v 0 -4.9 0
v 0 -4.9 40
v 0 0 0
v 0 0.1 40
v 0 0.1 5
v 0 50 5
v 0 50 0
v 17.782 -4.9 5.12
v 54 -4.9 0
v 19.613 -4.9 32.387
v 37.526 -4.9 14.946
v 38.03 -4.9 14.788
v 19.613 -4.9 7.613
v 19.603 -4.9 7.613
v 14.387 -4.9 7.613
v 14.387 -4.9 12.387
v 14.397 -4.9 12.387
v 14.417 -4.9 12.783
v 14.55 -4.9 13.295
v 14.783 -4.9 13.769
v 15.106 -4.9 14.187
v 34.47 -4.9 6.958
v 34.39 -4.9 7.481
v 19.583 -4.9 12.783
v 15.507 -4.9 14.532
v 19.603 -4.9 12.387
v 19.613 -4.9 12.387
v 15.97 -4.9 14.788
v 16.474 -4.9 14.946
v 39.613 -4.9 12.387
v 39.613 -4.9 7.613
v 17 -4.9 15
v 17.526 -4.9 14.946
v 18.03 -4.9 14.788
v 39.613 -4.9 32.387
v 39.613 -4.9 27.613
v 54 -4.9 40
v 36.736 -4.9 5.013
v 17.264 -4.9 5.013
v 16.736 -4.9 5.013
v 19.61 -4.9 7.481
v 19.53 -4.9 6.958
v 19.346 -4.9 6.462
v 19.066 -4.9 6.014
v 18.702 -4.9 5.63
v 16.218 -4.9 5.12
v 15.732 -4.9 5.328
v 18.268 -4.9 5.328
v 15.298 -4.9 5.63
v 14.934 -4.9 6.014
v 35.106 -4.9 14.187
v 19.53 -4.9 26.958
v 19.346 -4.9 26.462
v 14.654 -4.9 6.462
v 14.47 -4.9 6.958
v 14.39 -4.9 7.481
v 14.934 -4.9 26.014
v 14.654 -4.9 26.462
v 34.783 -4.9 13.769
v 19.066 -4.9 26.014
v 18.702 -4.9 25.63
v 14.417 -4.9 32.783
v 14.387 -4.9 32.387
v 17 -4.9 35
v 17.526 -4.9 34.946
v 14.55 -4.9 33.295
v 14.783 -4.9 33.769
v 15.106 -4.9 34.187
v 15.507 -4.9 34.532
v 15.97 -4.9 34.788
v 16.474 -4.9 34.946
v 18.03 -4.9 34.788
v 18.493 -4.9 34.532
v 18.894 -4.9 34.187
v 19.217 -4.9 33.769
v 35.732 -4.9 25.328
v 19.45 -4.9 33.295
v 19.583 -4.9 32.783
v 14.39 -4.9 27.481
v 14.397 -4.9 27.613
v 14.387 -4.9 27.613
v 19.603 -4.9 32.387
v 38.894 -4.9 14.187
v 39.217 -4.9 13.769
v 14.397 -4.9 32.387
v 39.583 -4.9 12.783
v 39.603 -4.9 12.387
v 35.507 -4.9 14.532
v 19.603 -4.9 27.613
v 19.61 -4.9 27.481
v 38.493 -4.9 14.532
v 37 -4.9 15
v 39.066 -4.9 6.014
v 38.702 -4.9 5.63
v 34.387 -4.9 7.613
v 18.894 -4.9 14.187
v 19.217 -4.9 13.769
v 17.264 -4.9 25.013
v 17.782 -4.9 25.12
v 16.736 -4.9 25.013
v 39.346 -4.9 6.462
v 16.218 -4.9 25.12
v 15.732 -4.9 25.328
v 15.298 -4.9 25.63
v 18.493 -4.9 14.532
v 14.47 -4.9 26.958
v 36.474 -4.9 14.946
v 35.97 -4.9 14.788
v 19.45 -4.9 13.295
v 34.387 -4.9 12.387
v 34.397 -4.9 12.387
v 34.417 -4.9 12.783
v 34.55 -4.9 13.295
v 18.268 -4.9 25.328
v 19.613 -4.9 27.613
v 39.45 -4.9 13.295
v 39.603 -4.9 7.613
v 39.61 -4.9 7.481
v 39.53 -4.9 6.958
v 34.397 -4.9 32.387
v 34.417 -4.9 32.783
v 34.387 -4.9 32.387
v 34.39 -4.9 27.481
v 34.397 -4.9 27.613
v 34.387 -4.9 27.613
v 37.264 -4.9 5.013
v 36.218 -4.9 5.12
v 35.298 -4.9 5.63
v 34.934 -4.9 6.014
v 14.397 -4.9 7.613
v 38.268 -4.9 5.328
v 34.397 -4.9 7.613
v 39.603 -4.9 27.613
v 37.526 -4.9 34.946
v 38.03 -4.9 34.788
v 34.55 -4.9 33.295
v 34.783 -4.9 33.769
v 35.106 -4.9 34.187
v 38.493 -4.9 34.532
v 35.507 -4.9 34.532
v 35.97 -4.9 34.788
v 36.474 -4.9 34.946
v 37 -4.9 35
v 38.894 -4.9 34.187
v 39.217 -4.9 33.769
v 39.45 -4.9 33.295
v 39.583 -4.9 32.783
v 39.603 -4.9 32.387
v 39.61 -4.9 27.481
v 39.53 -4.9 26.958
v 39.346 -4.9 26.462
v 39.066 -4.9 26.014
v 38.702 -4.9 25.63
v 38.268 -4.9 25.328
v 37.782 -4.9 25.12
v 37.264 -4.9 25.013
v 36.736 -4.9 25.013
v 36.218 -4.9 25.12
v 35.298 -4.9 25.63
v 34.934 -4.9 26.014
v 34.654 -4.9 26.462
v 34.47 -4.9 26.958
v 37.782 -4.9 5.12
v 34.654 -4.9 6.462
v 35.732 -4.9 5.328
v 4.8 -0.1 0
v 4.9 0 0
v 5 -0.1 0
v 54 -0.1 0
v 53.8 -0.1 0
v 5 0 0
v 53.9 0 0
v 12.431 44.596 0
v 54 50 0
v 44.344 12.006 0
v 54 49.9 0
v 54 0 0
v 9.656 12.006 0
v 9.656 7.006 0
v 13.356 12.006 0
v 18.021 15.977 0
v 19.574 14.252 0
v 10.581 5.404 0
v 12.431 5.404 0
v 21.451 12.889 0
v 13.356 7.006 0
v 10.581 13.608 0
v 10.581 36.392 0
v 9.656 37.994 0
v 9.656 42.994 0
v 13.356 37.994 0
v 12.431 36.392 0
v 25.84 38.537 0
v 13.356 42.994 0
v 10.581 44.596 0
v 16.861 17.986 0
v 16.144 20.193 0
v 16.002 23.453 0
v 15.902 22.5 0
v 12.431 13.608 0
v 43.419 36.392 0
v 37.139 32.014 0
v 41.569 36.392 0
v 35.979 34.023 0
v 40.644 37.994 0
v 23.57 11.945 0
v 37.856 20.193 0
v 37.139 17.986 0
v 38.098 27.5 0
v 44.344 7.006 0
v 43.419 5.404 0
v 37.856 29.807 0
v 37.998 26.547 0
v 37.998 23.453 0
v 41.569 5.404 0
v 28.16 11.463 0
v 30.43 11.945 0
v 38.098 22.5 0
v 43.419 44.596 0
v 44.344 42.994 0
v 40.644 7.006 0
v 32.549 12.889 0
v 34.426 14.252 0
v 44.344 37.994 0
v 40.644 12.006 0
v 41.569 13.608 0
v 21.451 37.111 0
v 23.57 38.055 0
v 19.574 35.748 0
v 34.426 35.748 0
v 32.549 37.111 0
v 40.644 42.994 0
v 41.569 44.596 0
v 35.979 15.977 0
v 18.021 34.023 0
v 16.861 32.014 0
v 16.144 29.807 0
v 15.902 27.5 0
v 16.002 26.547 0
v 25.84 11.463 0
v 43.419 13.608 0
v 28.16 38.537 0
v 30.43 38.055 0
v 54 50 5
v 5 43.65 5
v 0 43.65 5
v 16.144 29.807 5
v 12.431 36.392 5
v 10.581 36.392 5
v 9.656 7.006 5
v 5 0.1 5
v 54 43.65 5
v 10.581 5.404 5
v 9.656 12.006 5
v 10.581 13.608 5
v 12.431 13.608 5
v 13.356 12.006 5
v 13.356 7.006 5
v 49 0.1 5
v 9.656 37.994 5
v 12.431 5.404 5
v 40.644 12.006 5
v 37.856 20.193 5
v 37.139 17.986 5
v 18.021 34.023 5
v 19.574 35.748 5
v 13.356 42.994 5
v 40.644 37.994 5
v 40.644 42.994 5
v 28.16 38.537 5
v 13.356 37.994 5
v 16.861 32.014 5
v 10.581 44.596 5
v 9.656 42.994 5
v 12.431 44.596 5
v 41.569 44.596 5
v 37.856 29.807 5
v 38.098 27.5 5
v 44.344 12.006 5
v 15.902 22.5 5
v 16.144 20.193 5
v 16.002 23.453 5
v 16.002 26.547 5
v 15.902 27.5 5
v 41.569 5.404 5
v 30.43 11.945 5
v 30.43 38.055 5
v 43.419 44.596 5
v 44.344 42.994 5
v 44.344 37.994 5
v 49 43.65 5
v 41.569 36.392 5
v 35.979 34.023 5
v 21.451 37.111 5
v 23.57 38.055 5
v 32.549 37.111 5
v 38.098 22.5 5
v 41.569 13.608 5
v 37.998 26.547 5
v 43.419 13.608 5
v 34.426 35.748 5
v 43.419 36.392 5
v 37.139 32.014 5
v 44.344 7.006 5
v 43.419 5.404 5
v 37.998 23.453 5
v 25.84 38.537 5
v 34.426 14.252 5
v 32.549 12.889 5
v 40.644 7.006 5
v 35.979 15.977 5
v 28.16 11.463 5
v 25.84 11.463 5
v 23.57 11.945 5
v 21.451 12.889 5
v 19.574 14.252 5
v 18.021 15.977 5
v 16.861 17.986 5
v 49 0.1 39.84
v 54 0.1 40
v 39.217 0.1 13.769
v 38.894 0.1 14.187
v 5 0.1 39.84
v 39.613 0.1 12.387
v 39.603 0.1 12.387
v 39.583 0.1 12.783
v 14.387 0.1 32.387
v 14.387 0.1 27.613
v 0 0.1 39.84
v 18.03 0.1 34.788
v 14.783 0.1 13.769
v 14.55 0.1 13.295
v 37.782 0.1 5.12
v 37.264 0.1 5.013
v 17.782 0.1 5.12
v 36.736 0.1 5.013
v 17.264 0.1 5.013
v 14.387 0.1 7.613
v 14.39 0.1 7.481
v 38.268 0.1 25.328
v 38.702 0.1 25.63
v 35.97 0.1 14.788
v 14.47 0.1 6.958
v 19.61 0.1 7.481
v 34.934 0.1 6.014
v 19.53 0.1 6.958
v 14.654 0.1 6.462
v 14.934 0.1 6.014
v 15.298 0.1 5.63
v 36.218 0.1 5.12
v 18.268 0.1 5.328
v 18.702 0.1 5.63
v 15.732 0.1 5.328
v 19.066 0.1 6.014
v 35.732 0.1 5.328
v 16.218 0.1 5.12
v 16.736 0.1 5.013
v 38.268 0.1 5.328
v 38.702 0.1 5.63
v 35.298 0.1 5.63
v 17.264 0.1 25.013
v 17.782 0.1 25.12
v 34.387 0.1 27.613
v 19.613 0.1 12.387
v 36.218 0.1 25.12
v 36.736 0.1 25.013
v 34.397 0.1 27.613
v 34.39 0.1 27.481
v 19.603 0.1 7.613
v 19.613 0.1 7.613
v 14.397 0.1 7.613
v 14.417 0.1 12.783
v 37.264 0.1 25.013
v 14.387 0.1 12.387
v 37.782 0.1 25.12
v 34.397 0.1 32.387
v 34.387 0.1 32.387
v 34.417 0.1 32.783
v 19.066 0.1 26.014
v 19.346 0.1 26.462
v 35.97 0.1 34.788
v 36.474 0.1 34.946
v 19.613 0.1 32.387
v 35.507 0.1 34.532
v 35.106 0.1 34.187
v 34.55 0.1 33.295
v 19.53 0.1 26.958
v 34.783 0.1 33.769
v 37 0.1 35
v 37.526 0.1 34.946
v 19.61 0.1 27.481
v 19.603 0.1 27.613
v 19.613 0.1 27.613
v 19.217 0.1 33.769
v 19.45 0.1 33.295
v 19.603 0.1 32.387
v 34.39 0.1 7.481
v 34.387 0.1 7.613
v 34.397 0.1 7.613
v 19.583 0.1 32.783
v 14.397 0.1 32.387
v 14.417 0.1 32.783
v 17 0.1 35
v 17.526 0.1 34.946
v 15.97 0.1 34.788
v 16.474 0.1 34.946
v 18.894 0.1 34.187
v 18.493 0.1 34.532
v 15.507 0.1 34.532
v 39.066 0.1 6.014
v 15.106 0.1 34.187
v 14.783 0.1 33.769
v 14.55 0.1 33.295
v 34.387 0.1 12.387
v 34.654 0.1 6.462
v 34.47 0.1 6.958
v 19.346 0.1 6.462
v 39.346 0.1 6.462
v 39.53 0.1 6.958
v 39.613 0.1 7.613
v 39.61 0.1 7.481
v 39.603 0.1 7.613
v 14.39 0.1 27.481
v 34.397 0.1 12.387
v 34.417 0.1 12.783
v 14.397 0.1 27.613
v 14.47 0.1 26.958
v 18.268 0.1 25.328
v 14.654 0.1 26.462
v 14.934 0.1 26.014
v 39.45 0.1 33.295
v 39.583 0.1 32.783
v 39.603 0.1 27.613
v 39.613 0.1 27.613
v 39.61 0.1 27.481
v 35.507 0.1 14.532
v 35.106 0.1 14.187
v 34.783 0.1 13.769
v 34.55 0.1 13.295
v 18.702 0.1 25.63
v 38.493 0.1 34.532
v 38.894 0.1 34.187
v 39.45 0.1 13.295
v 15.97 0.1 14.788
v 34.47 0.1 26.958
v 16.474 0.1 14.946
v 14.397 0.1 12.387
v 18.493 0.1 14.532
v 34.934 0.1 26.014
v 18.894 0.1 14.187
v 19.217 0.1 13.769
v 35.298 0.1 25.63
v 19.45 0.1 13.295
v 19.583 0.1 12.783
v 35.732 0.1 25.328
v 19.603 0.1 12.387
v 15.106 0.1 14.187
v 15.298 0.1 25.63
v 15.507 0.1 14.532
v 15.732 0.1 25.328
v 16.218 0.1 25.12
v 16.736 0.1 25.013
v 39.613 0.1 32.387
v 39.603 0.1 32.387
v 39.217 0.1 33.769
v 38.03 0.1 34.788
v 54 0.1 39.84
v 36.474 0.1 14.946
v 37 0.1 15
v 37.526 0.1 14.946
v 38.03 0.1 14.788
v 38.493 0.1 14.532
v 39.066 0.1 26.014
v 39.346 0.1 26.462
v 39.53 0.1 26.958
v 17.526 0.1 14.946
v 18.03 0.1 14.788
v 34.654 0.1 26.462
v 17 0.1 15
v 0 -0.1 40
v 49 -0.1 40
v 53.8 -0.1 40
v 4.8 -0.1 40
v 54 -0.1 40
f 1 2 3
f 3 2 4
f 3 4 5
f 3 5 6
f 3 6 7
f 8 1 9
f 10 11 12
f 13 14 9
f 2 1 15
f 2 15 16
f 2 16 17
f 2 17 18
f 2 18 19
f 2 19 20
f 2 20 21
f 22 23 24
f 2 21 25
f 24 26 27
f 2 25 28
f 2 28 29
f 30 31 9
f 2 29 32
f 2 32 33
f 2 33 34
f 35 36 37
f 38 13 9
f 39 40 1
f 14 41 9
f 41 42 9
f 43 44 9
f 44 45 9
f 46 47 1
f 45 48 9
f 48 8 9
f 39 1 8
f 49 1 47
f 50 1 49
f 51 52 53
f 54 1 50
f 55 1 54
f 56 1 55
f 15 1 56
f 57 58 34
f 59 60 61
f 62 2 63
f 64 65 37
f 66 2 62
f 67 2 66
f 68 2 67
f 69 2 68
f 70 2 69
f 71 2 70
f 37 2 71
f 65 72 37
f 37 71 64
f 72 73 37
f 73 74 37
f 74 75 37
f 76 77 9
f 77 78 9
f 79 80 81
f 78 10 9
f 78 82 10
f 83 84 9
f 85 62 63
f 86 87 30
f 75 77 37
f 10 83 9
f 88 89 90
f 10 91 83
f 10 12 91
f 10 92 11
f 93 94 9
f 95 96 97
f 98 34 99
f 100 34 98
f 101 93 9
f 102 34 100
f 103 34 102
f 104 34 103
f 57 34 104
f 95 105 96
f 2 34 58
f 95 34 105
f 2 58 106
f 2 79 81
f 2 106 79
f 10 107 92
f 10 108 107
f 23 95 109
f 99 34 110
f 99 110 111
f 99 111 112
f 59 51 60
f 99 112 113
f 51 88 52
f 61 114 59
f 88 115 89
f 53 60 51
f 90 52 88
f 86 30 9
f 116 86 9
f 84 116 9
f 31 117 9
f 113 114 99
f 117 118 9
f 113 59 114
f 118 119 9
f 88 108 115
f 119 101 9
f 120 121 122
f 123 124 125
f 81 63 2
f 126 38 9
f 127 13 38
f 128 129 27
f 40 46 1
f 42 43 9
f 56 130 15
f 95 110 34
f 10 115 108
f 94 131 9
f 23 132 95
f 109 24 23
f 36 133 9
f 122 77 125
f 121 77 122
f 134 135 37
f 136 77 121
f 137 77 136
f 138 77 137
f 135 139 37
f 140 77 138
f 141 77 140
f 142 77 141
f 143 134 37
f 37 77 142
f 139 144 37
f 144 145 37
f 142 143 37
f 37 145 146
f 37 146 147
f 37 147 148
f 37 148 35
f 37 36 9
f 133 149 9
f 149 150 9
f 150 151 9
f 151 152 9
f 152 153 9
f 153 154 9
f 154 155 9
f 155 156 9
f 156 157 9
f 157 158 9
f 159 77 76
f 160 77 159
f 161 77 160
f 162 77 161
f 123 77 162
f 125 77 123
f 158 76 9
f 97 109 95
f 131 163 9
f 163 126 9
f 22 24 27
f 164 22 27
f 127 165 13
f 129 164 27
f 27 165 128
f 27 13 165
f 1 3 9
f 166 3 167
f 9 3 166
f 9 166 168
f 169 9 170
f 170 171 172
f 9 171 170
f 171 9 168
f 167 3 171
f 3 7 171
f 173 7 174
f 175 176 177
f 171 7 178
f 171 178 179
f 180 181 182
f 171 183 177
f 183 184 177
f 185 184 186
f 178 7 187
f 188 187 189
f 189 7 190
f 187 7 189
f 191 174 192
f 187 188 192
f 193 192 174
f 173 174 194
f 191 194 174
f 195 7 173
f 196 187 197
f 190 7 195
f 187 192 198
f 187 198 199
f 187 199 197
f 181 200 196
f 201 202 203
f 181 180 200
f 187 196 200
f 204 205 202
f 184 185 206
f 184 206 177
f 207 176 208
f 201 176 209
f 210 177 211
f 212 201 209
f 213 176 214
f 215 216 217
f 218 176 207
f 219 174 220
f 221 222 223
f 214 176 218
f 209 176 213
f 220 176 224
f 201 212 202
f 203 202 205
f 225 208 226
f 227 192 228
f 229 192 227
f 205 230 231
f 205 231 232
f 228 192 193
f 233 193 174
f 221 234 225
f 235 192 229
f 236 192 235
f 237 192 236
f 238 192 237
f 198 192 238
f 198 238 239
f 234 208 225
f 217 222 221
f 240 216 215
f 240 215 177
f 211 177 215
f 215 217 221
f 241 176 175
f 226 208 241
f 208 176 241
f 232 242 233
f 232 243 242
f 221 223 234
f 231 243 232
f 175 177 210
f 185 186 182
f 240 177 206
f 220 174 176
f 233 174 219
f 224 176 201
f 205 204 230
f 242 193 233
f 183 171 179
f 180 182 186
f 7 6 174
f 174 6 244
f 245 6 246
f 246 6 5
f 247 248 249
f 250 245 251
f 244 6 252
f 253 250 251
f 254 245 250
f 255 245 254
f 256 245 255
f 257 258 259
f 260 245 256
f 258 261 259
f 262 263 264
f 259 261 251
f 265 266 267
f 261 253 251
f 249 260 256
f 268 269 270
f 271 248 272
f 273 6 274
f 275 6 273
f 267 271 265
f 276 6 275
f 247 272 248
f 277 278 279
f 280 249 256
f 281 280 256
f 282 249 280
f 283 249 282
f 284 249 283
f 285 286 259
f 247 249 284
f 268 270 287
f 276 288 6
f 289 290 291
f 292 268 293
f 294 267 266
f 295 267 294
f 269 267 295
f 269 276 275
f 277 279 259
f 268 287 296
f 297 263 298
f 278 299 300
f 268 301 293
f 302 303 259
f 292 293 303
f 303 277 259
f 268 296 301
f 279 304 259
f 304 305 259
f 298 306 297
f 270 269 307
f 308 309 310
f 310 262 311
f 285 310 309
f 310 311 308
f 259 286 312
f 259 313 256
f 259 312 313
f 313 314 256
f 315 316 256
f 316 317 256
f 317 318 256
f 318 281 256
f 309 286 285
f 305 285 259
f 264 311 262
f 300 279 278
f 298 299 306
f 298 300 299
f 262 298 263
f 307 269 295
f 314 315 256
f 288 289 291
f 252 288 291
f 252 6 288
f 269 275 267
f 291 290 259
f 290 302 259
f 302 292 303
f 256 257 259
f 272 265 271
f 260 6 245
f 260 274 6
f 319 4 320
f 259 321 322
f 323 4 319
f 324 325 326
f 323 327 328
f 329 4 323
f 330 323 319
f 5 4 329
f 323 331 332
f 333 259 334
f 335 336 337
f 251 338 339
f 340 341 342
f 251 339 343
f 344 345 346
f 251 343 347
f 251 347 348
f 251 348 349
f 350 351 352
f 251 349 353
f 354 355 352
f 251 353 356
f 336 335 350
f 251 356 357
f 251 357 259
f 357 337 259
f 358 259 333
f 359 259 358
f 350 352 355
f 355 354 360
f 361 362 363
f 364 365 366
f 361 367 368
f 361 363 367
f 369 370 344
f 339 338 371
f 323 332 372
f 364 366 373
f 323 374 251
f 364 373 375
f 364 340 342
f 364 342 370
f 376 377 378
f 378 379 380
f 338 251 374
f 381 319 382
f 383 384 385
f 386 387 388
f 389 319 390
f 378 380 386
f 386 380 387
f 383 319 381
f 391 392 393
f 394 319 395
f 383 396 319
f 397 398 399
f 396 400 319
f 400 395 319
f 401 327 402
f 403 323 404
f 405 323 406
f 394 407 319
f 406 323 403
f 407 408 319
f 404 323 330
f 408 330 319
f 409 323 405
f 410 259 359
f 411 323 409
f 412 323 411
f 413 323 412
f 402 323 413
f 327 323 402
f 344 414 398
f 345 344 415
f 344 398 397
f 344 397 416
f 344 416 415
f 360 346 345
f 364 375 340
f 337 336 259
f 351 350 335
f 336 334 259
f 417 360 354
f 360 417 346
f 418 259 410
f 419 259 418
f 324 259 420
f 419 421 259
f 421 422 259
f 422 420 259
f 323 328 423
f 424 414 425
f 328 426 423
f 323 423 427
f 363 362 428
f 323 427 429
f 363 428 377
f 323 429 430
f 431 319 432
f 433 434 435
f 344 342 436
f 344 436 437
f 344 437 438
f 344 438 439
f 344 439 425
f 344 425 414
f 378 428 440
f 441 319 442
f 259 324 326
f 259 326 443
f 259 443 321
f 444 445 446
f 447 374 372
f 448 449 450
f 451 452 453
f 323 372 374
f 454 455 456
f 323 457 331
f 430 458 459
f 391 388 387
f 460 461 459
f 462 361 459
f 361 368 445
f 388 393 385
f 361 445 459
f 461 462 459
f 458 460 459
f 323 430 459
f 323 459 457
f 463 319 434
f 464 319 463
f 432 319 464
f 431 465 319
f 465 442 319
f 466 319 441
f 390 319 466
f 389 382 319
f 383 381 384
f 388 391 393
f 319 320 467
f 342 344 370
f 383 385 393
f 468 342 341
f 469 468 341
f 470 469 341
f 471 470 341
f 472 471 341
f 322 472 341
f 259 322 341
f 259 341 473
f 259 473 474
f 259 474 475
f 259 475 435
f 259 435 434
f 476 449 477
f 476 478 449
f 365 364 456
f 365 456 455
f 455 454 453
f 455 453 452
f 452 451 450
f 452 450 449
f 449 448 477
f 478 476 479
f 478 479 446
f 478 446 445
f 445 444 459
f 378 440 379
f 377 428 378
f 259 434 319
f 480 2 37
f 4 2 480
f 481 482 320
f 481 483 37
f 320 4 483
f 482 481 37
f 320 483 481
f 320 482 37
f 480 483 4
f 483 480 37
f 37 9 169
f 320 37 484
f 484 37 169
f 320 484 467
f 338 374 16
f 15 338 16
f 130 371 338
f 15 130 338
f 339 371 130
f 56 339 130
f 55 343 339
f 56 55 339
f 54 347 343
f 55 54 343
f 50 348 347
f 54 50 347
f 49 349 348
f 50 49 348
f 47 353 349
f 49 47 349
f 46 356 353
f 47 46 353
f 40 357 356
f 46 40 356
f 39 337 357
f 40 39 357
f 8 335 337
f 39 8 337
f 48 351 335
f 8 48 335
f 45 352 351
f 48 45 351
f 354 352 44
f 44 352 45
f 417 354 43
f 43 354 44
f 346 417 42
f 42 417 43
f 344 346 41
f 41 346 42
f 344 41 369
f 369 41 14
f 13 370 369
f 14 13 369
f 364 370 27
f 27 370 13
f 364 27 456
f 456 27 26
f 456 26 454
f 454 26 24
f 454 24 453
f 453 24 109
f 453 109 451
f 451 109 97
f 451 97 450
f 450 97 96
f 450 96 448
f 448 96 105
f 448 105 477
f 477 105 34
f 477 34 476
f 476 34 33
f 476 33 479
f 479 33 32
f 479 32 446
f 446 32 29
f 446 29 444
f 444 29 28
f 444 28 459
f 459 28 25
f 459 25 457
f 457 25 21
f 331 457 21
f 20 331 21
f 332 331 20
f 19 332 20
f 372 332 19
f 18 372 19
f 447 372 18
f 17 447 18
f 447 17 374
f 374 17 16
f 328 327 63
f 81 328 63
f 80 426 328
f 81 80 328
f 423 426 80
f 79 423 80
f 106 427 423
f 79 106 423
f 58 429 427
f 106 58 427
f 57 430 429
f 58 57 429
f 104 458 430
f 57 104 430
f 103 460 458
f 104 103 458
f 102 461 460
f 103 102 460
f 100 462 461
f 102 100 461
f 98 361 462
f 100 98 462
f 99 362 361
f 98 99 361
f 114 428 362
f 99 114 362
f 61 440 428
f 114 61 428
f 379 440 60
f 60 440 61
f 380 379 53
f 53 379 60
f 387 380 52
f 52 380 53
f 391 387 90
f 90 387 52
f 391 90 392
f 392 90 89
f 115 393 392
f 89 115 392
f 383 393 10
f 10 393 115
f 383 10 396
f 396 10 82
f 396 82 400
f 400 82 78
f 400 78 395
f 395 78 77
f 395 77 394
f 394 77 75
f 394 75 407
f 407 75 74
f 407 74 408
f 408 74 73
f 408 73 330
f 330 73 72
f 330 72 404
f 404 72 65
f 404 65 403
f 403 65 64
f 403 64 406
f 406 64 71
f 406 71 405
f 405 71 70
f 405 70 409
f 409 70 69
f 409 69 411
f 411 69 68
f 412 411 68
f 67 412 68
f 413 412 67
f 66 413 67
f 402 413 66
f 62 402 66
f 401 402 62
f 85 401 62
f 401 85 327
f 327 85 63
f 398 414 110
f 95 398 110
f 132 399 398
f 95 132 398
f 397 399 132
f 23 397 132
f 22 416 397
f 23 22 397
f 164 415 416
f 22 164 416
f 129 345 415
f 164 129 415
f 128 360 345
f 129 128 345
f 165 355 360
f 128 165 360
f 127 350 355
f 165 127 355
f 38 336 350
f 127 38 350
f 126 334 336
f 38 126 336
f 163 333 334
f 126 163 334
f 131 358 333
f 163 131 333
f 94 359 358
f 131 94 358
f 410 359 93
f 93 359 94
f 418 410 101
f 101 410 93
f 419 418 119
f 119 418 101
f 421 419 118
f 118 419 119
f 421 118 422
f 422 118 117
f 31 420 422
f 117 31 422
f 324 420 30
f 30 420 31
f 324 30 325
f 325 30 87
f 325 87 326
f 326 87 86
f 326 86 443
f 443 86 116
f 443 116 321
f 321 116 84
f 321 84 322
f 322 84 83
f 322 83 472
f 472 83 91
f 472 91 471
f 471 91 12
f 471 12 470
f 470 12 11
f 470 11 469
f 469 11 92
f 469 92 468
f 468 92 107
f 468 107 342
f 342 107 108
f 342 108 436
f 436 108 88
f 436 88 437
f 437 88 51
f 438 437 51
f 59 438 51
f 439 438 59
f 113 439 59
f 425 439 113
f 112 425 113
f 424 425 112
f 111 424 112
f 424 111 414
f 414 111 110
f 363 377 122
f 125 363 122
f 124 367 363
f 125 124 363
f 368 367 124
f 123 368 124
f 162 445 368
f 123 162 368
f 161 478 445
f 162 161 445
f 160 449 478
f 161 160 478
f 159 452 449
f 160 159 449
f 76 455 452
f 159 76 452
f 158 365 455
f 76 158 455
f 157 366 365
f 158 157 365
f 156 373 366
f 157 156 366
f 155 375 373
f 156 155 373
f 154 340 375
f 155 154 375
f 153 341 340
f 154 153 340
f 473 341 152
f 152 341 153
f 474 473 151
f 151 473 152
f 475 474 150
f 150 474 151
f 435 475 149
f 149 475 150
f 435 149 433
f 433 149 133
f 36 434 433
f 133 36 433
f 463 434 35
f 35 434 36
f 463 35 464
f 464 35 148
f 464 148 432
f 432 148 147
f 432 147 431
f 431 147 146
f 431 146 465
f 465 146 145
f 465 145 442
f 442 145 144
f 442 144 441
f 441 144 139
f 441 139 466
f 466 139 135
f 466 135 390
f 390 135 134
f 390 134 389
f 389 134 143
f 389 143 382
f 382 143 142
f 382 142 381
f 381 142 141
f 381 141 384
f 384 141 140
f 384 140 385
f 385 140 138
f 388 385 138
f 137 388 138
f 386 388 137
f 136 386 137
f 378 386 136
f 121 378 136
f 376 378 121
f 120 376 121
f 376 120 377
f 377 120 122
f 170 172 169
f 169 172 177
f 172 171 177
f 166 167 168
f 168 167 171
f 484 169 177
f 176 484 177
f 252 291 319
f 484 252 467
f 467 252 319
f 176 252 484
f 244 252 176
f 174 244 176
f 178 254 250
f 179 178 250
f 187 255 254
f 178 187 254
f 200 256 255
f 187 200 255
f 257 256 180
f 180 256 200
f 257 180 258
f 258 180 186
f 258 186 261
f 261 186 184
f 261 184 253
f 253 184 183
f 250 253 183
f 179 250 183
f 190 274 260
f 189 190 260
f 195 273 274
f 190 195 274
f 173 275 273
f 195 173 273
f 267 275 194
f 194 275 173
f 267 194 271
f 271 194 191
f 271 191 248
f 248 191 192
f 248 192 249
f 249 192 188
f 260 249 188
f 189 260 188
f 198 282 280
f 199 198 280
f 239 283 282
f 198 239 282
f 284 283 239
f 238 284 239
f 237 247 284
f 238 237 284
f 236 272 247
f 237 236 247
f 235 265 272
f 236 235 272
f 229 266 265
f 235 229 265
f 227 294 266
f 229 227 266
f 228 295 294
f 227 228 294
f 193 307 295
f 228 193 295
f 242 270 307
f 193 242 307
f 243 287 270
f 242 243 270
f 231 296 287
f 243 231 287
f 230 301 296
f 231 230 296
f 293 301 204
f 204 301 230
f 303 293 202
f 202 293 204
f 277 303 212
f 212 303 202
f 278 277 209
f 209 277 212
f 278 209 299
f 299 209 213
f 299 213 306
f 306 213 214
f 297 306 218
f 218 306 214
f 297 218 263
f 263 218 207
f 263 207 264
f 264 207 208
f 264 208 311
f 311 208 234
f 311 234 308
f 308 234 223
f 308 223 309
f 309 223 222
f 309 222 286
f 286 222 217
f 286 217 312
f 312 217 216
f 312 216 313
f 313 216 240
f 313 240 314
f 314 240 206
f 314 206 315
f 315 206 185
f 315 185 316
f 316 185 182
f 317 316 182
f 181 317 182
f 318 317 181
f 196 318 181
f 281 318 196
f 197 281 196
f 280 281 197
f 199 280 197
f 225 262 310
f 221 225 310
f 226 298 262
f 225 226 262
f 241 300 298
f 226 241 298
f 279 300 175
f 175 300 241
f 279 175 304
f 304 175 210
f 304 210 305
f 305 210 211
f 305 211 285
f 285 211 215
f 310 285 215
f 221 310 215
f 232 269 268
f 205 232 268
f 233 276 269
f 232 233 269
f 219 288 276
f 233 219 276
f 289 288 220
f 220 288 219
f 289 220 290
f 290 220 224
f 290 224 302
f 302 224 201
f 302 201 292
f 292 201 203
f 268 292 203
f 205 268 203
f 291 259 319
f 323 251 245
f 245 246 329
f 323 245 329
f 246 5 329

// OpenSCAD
// file: ../MCAD/constants.scad
// MIT license


TAU = 6.2831853071; //2*PI, see http://tauday.com/
PI = TAU/2;

// translates a imperial measurement in inches to meters
mm_per_inch = 25.4;
// file: ../MCAD/math.scad
// MIT license

include <constants.scad>

function deg(angle) = 360*angle/TAU;
// file: ../MCAD/triangles.scad
/**
 * Simple triangles library
 *
 * Authors:
 *   - Eero 'rambo' af Heurlin 2010-
 *
 * License: LGPL 2.1
 */


/**
 * Standard right-angled triangle
 *
 * @param number  o_len  Length of the opposite side
 * @param number  a_len  Length of the adjacent side
 * @param number  depth  How wide/deep the triangle is in the 3rd dimension
 * @param boolean center Whether to center the triangle on the origin
 * @todo a better way ?
 */
module triangle(o_len, a_len, depth, center=false)
{
    centroid = center ? [-a_len/3, -o_len/3, -depth/2] : [0, 0, 0];
    translate(centroid) linear_extrude(height=depth)
    {
        polygon(points=[[0,0],[a_len,0],[0,o_len]], paths=[[0,1,2]]);
    }
}

/**
 * Standard right-angled triangle (tangent version)
 *
 * @param number  tan_angle Angle of adjacent to hypotenuse (ie tangent)
 * @param number  a_len     Length of the adjacent side
 * @param number  depth     How wide/deep the triangle is in the 3rd dimension
 * @param boolean center    Whether to center the triangle on the origin
 */
module a_triangle(tan_angle, a_len, depth, center=false)
{
    triangle(tan(tan_angle) * a_len, a_len, depth, center);
}

// Tests:
module test_triangle() { triangle(5, 5, 5); }
module test_a_triangle() { a_triangle(45, 5, 5); }
module test_triangles()
{
    // Generate a bunch of triangles by sizes
    for (i = [1:10])
    {
        translate([i*7, -30, i*7])
        {
            triangle(i*5, sqrt(i*5+pow(i,2)), 5);
        }
    }

    // Generate a bunch of triangles by angle
    for (i = [1:85/5])
    {
        translate([i*7, 22, i*7])
        {
            a_triangle(i*5, 10, 5);
        }
    }
}
// file: ../myLibs.scad
pi= 3.14159265359;

module hole(diam, height, clearance= 0.1)
{
        fn= round(diam * pi / 0.5);
        cylinder(h= height, r=diam / 2 / cos(180 / fn) + clearance, $fn=fn);
}

module nutTrap(ffd, faces=6, height=1)
{
	cylinder(h= height, r=ffd / cos(180 / faces) / 2 + 0.05, $fn=faces);
}

// A slot which has rounded ends, but total length is l
module slot(d= 4, l= 8, ht= 1, clearance=0.1) {
	fn= round(d * pi / 0.5);
	rd= d / 2 / cos(180 / fn) + clearance;
	d1= rd*2;
	union() {
		translate([0,0,ht/2]) cube([l-d1, d1, ht], center=true);
		translate([-(l-d1)/2, 0, ht/2]) cylinder(h=ht, r=rd, $fn=fn, center=true);
		translate([(l-d1)/2, 0, ht/2]) cylinder(h=ht, r=rd, $fn=fn, center=true);
	}
}

module nslot(d=4, l= 8, ht=1, clearance=0.1) {
	x= l-(d+clearance);
	hull() {
		translate([x/2, 0, 0])  hole(d, ht, clearance);
		translate([-x/2,0,0]) hole(d,ht, clearance);
	}
}

module rounded_base(w, l, r, h) {
	v1= [w/2-r, l/2-r, 0];
	v2= [-w/2+r, -l/2+r, 0];
	v3= [-w/2+r, l/2-r, 0];
	v4= [w/2-r, -l/2+r, 0];
	hull() {
		translate(v1) cylinder(r= r, h=h);
		translate(v2) cylinder(r= r, h=h);
		translate(v3) cylinder(r= r, h=h);
		translate(v4) cylinder(r= r, h=h);
	}
}
// file: ../MCAD/motors.scad
// Copyright 2010 D1plo1d

// This library is dual licensed under the GPL 3.0 and the GNU Lesser General Public License as per http://creativecommons.org/licenses/LGPL/2.1/ .

include <math.scad>


//generates a motor mount for the specified nema standard #.
module stepper_motor_mount(nema_standard,slide_distance=0, mochup=true, tolerance=0) {
	//dimensions from:
	// http://www.numberfactory.com/NEMA%20Motor%20Dimensions.htm
	if (nema_standard == 17)
	{
		_stepper_motor_mount(
			motor_shaft_diameter = 0.1968*mm_per_inch,
			motor_shaft_length = 0.945*mm_per_inch,
			pilot_diameter = 0.866*mm_per_inch,
			pilot_length = 0.80*mm_per_inch,
			mounting_bolt_circle = 1.725*mm_per_inch,
			bolt_hole_size = 3.5,
			bolt_hole_distance = 1.220*mm_per_inch,
			slide_distance = slide_distance,
			mochup = mochup,
			tolerance=tolerance);
	}
	if (nema_standard == 23)
	{
		_stepper_motor_mount(
			motor_shaft_diameter = 0.250*mm_per_inch,
			motor_shaft_length = 0.81*mm_per_inch,
			pilot_diameter = 1.500*mm_per_inch,
			pilot_length = 0.062*mm_per_inch,
			mounting_bolt_circle = 2.625*mm_per_inch,
			bolt_hole_size = 0.195*mm_per_inch,
			bolt_hole_distance = 1.856*mm_per_inch,
			slide_distance = slide_distance,
			mochup = mochup,
			tolerance=tolerance);
	}
	
}


//inner mehod for creating a stepper motor mount of any dimensions
module _stepper_motor_mount(
	motor_shaft_diameter,
	motor_shaft_length,
	pilot_diameter,
	pilot_length,
	mounting_bolt_circle,
	bolt_hole_size,
	bolt_hole_distance,
	slide_distance = 0,
	motor_length = 40, //arbitray - not standardized
	mochup,
	tolerance = 0
)
{
	union()
	{
	// == centered mount points ==
	//mounting circle inset
	translate([0,slide_distance/2,0]) circle(r = pilot_diameter/2 + tolerance);
	square([pilot_diameter,slide_distance],center=true);
	translate([0,-slide_distance/2,0]) circle(r = pilot_diameter/2 + tolerance);

	//todo: motor shaft hole
	
	//mounting screw holes
	for (x = [-1,1])
	{
		for (y = [-1,1])
		{
			translate([x*bolt_hole_distance/2,y*bolt_hole_distance/2,0])
			{
				translate([0,slide_distance/2,0]) circle(bolt_hole_size/2 + tolerance);
				translate([0,-slide_distance/2,0]) circle(bolt_hole_size/2 + tolerance);
				square([bolt_hole_size+2*tolerance,slide_distance],center=true);
			}
		}
	}
	// == motor mock-up ==
	//motor box
	if (mochup == true)
	{
		%translate([0,0,-5]) cylinder(h = 5, r = pilot_diameter/2);
		%translate(v=[0,0,-motor_length/2])
		{
			cube(size=[bolt_hole_distance+bolt_hole_size+5,bolt_hole_distance+bolt_hole_size+5,motor_length], center = true);
		}
		//shaft
		%translate(v=[0,0,-(motor_length-motor_shaft_length-2)/2])
		{
			%cylinder(r=motor_shaft_diameter/2,h=motor_length+motor_shaft_length--1, center = true);
		}
	}
	}
}
// main file
use <../MCAD/motors.scad>
use <../myLibs.scad>
use <../MCAD/triangles.scad>

w= 54;
h= 50;

module motorAttachment(thickness=4) {
	difference() {
		cube([w,h,thickness]);
		translate([w/2,h/2,0]) linear_extrude(height=thickness+1) stepper_motor_mount(17,5,true,0.1);
	}
}

module attachmentPlate(thickness=4) {
	difference() {
		cube([w,40,thickness]);
		
		// attachment holes
		#translate([(w/2)-10, 10, 0]) rotate([0,0,90]) slot(d= 5, l=10, ht=thickness);		
		#translate([(w/2)-10, 30, 0]) rotate([0,0,90]) slot(d= 5, l=10, ht=thickness);			
		#translate([(w/2)+10, 10, 0]) rotate([0,0,90]) slot(d= 5, l=10, ht=thickness);			
		#translate([(w/2)+10, 30, 0]) rotate([0,0,90]) slot(d= 5, l=10, ht=thickness);			
	}
}

module buttress(thickness=4) {
	triangle(50, 40, thickness);
}

module motorPlate(thickness=4, buttressThickness=4) {
	union() {
		motorAttachment(thickness);
		translate([0,0.1,0]) rotate([90,0,0]) attachmentPlate(thickness);
		translate([buttressThickness,-0.1,0]) rotate([0,-90,0]) buttress(buttressThickness);
		translate([w,-0.1,0]) rotate([0,-90,0]) buttress(buttressThickness);
	}
}

motorPlate(5, 5);
//motorAttachment();
//attachmentPlate();
//buttress();
